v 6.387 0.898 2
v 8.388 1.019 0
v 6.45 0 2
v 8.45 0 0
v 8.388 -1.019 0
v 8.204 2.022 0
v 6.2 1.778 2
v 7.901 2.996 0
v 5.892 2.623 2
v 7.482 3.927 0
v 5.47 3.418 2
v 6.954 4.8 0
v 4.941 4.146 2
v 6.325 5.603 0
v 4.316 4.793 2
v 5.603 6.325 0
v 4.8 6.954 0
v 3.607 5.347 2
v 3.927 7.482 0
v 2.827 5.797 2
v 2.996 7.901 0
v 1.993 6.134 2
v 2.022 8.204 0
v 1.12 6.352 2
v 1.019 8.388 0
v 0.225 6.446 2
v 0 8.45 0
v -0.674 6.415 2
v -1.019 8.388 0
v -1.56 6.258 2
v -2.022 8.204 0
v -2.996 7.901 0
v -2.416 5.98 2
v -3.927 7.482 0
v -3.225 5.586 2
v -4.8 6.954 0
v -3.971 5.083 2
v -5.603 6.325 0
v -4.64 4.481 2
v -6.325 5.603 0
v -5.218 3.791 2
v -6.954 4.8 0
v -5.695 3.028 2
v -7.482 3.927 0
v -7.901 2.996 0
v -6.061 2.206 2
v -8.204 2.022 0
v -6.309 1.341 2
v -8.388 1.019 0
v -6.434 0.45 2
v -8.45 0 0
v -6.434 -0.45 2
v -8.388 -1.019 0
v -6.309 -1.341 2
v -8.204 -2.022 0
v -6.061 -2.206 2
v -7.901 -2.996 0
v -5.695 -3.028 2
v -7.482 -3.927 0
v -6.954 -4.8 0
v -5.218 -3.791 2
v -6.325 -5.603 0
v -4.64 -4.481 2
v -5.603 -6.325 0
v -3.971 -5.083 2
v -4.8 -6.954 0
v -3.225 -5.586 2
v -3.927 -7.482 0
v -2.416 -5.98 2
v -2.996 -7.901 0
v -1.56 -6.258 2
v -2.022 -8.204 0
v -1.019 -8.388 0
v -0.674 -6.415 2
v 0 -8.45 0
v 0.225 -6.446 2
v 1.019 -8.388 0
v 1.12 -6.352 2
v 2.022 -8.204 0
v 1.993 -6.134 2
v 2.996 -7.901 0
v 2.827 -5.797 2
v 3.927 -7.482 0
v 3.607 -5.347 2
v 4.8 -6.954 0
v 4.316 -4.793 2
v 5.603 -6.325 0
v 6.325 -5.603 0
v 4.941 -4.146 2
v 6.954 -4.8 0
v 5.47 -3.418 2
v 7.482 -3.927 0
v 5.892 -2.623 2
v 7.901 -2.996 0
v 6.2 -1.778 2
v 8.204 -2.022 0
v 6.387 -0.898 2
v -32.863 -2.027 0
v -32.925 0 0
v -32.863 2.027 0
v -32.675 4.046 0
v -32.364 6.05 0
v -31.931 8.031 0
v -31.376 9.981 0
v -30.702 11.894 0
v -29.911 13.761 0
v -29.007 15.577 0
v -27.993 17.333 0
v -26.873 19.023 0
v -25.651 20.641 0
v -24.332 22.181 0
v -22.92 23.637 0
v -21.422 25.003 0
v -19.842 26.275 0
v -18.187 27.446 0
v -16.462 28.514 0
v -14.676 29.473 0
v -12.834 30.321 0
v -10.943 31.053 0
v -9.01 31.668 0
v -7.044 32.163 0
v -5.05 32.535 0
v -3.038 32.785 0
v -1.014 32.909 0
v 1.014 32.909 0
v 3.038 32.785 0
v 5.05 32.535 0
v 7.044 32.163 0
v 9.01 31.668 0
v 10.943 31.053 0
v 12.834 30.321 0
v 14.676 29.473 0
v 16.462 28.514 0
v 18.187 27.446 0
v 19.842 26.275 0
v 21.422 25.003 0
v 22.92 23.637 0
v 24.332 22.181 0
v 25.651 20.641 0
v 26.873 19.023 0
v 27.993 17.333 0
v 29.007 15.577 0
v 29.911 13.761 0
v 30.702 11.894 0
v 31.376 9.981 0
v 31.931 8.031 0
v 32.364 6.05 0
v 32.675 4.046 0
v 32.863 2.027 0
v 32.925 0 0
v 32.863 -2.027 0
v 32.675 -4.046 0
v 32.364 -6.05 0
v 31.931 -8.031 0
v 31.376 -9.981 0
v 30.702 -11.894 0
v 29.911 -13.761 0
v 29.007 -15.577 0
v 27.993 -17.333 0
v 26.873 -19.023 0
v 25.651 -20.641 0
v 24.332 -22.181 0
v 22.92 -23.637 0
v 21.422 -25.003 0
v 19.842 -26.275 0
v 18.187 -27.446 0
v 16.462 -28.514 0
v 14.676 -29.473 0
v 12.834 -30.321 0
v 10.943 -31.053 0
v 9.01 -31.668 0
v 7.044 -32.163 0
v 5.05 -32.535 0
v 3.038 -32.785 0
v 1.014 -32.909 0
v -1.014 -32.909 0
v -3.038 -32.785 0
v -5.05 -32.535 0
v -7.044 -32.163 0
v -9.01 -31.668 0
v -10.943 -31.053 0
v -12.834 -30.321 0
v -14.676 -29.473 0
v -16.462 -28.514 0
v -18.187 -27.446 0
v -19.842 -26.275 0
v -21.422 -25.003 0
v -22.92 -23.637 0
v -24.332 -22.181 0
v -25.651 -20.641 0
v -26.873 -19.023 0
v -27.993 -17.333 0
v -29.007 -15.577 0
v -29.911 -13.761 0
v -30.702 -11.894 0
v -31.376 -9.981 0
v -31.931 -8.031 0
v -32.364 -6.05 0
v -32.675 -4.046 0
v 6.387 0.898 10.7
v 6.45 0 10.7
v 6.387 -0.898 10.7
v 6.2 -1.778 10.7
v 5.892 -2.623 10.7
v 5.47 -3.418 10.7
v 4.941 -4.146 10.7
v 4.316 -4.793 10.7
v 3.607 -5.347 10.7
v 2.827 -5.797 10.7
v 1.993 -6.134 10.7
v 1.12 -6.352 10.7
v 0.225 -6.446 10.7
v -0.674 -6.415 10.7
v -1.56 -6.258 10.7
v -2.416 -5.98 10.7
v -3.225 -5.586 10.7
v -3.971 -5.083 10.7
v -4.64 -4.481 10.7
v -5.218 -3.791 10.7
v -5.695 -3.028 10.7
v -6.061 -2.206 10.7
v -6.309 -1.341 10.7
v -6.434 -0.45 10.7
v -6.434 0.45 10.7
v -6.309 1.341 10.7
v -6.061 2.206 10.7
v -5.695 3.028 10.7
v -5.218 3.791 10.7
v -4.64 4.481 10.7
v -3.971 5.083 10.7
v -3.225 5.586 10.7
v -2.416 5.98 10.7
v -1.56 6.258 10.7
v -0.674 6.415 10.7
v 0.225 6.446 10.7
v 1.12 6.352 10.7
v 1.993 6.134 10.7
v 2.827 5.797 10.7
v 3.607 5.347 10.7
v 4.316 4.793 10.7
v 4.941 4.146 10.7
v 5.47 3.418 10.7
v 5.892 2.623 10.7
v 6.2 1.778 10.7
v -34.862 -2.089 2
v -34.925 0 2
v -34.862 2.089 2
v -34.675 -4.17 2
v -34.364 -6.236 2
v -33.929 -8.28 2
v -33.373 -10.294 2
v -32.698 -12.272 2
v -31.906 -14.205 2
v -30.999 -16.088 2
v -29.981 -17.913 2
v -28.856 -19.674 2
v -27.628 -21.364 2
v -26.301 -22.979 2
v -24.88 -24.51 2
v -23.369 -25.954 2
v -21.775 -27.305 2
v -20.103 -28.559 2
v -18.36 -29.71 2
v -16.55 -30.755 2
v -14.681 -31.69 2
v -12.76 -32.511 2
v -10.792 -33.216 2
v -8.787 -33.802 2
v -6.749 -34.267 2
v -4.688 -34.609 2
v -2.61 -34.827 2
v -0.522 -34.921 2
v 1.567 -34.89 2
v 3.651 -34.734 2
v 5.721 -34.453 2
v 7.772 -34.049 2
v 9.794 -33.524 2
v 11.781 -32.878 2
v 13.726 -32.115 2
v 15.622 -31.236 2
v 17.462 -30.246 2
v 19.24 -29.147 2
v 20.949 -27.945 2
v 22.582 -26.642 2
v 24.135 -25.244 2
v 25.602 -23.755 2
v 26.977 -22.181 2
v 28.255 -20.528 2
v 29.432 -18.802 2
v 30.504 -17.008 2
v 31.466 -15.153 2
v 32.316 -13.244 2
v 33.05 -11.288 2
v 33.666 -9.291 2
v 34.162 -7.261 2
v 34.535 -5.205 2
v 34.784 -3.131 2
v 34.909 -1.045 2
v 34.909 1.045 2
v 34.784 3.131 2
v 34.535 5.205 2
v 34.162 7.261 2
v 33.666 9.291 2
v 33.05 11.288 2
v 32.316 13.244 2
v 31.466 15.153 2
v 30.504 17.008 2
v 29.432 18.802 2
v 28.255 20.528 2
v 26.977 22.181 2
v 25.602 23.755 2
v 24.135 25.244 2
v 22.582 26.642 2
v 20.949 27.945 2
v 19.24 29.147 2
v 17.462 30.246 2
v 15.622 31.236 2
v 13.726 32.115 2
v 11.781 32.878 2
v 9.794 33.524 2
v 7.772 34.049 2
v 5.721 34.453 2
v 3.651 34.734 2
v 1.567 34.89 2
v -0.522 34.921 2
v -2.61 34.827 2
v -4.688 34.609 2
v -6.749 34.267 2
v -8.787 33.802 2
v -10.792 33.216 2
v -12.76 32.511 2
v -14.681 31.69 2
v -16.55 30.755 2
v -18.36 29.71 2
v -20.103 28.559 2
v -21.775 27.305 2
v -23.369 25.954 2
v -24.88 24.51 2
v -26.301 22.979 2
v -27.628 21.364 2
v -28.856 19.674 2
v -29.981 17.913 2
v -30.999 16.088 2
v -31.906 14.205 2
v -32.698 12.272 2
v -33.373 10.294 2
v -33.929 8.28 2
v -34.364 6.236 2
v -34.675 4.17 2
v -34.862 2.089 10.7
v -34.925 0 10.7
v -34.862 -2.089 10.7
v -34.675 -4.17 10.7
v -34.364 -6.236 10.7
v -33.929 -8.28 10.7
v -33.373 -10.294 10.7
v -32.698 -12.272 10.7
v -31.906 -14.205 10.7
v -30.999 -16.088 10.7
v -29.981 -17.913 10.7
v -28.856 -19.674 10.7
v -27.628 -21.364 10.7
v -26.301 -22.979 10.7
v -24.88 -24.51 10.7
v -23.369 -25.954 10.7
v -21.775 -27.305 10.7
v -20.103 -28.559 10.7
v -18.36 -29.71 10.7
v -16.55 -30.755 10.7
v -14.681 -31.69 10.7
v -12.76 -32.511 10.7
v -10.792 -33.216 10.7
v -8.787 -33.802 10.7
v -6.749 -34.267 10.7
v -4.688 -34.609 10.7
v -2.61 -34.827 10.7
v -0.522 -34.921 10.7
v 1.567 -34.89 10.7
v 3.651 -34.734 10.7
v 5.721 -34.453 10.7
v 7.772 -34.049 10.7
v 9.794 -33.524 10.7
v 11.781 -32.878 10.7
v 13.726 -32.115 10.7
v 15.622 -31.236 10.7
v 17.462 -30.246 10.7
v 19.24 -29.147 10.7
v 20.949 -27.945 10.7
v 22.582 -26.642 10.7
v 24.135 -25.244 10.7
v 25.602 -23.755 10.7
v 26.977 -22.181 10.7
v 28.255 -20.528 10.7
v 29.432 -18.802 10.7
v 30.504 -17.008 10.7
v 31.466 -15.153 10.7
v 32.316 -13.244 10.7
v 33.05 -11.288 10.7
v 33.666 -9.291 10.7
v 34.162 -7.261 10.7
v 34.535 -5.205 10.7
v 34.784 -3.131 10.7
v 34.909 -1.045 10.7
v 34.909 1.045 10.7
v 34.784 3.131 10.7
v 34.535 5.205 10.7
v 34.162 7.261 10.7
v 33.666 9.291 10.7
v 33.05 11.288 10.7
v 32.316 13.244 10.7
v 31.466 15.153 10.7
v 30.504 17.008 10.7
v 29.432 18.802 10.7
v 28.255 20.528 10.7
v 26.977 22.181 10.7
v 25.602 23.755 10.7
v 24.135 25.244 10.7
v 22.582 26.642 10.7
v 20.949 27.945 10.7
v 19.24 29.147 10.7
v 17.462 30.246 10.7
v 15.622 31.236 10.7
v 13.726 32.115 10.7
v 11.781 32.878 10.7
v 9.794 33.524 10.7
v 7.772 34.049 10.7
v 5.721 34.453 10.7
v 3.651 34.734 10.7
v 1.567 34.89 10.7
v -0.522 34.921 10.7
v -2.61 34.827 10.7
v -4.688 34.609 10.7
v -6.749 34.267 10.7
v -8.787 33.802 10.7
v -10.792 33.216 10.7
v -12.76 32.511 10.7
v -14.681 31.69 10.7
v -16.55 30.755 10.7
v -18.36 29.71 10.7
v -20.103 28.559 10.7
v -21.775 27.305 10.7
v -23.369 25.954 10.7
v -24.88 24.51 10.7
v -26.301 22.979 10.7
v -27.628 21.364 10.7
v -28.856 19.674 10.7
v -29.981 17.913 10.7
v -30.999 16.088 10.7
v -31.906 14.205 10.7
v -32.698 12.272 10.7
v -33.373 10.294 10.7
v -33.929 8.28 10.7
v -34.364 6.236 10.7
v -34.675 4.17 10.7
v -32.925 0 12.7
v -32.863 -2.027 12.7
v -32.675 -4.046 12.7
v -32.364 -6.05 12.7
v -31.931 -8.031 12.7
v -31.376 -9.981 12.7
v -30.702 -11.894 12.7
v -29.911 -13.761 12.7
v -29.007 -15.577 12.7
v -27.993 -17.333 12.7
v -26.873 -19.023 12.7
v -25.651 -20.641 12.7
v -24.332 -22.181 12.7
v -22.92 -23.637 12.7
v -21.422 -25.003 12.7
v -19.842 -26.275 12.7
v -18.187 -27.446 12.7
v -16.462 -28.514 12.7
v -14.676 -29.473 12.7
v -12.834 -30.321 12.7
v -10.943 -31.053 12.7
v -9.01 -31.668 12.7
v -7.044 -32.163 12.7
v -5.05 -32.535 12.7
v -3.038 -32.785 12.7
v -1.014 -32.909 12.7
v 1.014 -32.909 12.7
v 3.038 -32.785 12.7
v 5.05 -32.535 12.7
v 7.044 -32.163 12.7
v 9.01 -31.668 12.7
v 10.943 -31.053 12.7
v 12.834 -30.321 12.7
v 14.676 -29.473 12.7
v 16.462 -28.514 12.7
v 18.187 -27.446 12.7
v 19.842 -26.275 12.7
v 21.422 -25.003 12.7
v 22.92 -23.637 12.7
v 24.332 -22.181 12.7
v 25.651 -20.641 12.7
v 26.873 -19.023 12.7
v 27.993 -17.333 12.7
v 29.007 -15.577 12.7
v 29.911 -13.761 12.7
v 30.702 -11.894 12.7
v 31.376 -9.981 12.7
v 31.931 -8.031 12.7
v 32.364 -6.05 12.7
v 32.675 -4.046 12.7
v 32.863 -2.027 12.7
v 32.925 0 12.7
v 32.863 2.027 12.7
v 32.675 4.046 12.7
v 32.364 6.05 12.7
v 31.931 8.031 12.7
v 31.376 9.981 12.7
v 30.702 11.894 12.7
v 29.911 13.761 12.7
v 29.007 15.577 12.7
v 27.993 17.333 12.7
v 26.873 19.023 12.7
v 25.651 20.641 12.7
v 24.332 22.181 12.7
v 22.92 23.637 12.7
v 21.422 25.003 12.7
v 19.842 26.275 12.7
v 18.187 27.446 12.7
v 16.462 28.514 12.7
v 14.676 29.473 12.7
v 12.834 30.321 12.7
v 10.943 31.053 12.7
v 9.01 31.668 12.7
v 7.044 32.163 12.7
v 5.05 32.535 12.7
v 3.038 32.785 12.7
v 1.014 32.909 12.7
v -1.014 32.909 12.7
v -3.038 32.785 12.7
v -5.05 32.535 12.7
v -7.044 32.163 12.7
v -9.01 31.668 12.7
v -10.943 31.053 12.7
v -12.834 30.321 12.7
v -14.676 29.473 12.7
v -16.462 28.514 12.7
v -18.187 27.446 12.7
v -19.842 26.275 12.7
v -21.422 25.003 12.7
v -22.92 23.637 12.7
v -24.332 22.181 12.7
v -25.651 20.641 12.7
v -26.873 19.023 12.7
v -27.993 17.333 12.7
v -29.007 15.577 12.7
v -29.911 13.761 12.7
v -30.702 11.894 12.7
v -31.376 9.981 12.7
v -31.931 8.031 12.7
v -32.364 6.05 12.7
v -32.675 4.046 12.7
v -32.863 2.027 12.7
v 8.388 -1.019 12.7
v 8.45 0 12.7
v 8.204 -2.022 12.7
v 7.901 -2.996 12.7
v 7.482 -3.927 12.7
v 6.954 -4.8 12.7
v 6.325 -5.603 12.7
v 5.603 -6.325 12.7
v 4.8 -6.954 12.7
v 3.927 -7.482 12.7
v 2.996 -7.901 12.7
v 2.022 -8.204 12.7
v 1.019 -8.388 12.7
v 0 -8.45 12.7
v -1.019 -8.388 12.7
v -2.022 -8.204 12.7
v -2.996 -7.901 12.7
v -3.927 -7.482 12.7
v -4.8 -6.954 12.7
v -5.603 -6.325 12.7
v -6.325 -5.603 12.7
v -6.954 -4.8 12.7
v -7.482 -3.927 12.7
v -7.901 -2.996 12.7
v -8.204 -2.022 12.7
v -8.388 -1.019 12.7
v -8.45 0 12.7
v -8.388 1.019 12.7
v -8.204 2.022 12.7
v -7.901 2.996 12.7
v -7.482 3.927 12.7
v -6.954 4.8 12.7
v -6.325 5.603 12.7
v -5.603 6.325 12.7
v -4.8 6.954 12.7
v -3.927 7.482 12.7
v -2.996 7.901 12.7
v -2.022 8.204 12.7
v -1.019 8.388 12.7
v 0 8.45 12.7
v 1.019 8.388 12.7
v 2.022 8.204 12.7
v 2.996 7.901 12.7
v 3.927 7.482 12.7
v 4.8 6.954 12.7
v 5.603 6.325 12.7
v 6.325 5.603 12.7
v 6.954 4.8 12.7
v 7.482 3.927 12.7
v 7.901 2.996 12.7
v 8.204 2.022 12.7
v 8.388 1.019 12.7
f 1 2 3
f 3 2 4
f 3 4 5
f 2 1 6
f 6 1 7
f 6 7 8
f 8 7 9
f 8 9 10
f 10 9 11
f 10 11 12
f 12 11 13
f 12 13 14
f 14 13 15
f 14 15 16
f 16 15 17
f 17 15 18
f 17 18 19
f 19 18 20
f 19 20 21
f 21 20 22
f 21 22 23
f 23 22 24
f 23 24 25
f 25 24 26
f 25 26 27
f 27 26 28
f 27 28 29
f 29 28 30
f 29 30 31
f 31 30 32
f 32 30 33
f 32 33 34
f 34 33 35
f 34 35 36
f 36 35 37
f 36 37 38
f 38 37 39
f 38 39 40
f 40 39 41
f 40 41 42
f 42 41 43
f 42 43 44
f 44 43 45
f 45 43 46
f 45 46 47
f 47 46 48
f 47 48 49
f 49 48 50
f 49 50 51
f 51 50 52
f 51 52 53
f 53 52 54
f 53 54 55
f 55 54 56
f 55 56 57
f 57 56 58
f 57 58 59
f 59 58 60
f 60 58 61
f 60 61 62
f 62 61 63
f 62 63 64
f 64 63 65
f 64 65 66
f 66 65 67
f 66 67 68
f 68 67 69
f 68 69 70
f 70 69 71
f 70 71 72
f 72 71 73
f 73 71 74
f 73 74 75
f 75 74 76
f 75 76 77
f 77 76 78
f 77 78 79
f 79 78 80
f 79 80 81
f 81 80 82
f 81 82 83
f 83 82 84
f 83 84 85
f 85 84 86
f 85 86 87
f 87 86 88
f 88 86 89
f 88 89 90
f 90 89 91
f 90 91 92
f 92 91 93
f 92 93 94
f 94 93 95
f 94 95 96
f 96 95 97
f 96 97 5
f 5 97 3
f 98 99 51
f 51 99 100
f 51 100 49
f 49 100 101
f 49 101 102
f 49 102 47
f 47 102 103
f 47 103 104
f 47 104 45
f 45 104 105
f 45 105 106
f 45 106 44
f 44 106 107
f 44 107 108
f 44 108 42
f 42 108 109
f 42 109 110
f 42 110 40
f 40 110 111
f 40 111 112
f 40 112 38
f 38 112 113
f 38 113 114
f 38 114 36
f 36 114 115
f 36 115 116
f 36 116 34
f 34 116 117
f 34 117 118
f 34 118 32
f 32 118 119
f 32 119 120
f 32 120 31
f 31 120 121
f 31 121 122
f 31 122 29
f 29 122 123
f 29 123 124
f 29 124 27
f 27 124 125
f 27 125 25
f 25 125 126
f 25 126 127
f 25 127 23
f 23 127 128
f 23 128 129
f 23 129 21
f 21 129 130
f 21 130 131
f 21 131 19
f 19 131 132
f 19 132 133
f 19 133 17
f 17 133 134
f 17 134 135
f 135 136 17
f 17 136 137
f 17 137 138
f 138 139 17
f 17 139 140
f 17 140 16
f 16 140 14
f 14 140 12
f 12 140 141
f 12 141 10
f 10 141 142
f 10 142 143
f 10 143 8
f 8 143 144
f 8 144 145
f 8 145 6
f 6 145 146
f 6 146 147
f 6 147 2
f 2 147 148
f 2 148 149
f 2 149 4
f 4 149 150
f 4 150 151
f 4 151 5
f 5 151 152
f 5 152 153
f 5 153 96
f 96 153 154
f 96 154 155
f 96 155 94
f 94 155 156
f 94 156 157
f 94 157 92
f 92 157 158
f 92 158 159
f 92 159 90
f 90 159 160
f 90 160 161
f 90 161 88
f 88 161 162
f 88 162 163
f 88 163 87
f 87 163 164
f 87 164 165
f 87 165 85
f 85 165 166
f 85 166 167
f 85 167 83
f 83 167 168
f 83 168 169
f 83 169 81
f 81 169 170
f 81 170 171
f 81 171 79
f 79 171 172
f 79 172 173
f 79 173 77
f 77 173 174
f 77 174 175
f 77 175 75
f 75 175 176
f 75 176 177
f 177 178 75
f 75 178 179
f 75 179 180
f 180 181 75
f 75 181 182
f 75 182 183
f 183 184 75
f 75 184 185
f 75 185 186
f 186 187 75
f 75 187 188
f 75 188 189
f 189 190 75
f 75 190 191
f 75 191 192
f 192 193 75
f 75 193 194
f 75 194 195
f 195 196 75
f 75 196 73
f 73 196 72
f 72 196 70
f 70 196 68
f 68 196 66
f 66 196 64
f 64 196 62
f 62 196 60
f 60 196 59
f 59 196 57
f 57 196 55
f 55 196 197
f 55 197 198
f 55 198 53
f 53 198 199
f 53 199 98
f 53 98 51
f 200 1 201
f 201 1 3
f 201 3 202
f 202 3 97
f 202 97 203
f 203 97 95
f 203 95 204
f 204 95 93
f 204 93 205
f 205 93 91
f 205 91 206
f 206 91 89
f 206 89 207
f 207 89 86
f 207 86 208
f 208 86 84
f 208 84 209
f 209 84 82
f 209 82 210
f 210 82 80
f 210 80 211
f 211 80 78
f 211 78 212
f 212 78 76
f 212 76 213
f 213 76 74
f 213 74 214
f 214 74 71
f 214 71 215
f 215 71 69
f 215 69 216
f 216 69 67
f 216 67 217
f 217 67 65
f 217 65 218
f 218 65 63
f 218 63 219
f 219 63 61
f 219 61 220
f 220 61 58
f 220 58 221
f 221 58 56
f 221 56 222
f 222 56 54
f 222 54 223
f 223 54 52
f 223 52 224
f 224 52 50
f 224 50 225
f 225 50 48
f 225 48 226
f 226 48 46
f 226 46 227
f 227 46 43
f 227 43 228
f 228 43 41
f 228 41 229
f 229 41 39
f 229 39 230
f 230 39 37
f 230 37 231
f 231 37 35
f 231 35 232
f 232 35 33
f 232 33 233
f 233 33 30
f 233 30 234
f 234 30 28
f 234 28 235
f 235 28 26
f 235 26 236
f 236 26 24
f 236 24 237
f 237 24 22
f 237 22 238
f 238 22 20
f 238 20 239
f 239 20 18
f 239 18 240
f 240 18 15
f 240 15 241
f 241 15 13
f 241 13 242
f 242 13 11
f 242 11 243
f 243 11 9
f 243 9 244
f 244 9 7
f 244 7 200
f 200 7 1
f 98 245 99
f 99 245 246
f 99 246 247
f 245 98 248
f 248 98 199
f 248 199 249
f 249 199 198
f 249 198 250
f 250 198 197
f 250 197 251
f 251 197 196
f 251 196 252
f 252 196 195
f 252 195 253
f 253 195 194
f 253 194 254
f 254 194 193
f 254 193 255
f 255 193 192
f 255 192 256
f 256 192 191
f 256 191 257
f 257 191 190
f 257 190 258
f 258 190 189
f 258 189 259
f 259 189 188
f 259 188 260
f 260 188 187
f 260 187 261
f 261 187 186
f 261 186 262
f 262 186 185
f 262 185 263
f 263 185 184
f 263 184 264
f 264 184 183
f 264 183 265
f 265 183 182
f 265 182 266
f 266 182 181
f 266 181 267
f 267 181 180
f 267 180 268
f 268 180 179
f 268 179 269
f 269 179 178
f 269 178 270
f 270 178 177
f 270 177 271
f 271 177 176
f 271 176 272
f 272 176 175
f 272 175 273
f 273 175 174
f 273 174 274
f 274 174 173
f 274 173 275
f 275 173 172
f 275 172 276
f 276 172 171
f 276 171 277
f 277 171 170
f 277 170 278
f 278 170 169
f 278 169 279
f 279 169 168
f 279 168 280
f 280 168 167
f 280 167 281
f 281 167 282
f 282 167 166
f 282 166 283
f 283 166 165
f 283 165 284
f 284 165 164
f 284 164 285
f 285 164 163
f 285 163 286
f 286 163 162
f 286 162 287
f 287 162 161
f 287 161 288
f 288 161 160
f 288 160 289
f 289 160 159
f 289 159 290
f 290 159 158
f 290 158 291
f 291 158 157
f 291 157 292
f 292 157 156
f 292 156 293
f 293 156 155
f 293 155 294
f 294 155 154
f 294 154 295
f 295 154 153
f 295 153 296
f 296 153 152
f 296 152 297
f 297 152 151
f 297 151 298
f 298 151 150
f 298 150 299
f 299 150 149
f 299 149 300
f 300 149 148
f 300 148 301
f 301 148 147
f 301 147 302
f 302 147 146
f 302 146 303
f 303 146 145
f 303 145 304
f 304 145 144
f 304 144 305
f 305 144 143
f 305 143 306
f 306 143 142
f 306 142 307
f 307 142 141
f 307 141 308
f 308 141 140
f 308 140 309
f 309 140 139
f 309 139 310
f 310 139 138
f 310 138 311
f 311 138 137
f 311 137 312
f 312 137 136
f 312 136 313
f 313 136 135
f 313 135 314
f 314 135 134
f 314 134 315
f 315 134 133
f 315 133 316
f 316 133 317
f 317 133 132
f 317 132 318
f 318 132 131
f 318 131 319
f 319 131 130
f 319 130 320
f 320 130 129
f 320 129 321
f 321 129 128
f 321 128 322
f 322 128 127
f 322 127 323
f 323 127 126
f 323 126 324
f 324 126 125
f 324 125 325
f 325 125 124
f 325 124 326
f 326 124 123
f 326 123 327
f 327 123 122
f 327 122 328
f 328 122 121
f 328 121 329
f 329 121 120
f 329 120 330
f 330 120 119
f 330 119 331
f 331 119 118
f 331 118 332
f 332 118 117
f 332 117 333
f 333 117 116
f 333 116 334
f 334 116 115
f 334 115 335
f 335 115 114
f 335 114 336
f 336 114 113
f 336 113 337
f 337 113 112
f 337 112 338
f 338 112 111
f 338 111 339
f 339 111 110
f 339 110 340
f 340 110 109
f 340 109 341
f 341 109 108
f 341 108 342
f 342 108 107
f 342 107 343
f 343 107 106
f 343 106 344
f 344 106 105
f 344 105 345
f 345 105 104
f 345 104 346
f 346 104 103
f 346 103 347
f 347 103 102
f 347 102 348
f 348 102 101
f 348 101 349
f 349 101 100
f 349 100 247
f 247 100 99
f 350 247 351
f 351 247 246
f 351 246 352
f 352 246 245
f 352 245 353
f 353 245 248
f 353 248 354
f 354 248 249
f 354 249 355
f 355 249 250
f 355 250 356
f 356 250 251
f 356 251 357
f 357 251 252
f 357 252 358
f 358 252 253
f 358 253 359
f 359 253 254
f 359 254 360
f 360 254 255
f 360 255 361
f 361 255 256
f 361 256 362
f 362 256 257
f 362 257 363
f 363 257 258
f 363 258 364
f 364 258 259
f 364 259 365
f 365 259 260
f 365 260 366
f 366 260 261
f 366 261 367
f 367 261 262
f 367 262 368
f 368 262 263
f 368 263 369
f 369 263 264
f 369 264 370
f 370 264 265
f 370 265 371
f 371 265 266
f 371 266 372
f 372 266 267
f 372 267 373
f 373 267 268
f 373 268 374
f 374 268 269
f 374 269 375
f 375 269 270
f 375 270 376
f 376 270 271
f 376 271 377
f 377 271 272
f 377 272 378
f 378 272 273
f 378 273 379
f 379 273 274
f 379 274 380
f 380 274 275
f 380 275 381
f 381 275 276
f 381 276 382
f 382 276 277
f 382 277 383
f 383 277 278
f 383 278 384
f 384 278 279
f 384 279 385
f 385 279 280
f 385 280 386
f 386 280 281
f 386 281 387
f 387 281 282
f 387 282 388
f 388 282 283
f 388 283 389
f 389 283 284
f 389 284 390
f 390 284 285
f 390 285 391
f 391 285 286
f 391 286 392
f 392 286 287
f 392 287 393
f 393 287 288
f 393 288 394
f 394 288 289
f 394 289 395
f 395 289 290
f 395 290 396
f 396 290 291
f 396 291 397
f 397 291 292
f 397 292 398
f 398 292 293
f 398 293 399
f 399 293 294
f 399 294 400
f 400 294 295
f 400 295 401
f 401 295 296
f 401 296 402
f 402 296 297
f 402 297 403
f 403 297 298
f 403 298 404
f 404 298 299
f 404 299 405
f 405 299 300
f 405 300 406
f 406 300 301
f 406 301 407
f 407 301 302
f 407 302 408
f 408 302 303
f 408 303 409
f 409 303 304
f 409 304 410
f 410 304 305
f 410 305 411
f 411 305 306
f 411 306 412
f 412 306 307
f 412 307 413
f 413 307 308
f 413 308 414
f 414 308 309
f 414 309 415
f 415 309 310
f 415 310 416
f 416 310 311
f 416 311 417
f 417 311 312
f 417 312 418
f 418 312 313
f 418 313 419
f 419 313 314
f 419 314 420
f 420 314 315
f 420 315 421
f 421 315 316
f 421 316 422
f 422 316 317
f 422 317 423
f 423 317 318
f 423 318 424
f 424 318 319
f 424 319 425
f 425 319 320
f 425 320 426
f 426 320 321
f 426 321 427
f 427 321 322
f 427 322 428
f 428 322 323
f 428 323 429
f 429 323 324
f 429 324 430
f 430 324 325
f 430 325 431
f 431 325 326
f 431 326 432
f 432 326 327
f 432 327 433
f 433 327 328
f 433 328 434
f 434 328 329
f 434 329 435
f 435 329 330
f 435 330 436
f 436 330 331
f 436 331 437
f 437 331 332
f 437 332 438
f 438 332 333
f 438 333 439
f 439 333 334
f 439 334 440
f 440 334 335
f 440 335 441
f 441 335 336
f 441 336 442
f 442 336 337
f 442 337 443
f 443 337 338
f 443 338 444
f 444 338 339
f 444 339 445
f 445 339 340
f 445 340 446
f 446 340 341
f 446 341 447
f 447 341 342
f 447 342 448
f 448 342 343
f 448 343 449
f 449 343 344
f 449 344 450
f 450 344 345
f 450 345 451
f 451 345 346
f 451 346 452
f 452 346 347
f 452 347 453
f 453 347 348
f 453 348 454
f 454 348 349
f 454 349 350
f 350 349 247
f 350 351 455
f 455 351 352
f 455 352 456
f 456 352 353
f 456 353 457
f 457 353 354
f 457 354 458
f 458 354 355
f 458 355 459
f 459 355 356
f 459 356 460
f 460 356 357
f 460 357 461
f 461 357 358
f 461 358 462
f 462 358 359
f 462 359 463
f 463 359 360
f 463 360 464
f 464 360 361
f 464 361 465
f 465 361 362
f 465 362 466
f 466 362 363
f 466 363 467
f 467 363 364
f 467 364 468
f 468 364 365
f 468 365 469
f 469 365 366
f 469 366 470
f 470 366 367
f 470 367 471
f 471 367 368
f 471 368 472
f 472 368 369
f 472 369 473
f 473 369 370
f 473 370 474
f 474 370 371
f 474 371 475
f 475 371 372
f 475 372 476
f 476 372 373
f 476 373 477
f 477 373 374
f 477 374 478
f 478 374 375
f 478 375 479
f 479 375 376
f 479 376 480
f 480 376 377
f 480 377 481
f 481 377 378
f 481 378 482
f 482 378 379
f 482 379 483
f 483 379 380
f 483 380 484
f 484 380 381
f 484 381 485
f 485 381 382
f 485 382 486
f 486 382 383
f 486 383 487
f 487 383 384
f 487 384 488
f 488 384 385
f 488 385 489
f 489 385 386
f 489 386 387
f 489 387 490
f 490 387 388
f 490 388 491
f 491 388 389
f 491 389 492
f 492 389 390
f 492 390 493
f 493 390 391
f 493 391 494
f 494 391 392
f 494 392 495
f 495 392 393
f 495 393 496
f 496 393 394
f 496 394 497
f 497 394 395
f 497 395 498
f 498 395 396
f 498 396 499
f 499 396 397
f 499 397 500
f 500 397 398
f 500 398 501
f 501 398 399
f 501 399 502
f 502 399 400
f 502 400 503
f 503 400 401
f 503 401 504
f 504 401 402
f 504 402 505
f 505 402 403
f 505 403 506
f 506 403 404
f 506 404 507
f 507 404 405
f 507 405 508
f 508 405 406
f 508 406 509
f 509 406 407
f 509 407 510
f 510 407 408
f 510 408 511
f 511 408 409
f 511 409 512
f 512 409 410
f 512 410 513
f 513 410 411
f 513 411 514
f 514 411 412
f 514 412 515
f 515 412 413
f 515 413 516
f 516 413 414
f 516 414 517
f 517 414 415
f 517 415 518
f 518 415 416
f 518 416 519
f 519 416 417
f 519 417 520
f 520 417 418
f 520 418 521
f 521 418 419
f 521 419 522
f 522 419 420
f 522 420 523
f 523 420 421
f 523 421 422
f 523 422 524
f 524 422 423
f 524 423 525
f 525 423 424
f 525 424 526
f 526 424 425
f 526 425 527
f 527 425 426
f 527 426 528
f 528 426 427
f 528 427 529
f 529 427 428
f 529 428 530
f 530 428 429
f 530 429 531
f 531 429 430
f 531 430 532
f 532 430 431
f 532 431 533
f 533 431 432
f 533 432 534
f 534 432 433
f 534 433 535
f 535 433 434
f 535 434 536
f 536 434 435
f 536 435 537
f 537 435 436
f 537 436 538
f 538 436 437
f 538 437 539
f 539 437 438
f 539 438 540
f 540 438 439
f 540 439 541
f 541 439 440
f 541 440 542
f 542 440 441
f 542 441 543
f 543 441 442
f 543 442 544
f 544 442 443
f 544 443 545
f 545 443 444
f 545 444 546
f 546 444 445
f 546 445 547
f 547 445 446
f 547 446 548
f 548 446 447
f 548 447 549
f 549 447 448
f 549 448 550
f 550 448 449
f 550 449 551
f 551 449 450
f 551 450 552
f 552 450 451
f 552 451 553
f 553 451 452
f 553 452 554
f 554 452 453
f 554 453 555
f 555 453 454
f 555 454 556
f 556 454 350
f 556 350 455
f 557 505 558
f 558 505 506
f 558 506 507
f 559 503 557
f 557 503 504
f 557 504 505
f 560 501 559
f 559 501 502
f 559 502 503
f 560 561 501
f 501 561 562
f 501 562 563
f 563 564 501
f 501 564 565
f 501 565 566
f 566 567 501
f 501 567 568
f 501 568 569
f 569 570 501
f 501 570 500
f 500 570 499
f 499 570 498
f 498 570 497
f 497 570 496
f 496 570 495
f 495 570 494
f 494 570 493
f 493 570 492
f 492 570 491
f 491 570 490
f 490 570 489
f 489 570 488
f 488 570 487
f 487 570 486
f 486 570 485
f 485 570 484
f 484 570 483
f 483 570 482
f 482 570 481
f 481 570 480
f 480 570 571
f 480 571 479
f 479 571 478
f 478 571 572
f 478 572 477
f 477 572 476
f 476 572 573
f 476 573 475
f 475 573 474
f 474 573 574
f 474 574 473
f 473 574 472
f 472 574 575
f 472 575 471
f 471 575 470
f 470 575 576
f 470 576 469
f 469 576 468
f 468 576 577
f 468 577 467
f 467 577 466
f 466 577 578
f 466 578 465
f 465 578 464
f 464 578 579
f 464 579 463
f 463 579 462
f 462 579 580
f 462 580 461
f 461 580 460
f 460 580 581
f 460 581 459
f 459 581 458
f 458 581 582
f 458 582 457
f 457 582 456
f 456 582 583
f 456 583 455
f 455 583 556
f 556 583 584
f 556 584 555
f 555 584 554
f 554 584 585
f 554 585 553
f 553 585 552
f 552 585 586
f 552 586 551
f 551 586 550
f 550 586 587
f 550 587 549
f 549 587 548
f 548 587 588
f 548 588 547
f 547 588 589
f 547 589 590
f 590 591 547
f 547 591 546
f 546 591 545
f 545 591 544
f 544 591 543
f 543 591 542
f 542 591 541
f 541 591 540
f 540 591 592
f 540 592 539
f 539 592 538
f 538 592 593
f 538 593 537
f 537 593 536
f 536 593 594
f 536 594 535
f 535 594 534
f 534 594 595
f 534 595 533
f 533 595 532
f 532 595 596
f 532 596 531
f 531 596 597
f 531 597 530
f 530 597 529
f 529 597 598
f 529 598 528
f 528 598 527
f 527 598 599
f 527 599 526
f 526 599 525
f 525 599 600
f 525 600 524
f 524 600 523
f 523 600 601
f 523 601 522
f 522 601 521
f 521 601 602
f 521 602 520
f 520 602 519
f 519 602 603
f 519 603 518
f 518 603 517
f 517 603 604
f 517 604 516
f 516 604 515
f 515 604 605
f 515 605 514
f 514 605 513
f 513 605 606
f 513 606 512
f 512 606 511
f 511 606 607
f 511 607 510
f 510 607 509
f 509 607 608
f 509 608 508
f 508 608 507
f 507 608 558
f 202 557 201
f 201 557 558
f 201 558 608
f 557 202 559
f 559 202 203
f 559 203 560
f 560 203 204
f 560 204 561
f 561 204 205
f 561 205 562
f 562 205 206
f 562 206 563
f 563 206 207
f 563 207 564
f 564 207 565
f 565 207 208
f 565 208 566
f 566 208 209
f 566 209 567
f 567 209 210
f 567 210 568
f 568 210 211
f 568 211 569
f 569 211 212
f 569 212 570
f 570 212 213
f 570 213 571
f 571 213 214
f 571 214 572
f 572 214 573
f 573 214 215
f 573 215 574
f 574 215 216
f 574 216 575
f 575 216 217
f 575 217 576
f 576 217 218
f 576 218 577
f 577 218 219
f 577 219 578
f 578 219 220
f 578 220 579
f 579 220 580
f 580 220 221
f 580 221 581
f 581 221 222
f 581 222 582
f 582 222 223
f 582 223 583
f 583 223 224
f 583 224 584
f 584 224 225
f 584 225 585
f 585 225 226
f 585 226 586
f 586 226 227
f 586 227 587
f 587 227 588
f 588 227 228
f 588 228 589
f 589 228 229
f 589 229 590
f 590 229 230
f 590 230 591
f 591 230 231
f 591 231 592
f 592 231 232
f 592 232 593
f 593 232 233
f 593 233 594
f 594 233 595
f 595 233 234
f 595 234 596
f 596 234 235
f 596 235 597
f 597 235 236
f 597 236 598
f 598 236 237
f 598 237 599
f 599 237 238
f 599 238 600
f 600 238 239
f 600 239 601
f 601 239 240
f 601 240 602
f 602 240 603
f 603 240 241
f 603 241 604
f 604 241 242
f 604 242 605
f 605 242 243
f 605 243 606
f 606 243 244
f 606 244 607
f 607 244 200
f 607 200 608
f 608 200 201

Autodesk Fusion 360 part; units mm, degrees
sketch "Roller_Insert" plane through (0, 0, 0) normal (0, 0, 1) x (1, 0, 0)
  circle A0 centre (0, 0) radius 34.925
  dimension "d1" = 69.85
extrude "Extrude2" add sketch "Roller_Insert" along normal blind 12.7
sketch "Pipe Cutout" plane through (0, 0, 12.7) normal (0, 0, 1) x (-1, 0, 0)
  circle A0 centre (0, 0) radius 34.925
  circle A1 centre (0, 0) radius 6.45
  dimension "d9" = 12.9
extrude "Extrude3" cut sketch "Pipe Cutout" against normal through all contours A1
chamfer "Chamfer1" distance 2 angle 45 4 edges at (6.0135, -2.3324, 12.7) (-32.5615, -12.6294, 12.7) (-32.5615, -12.6294, 0) (6.0135, 2.3324, 0)
